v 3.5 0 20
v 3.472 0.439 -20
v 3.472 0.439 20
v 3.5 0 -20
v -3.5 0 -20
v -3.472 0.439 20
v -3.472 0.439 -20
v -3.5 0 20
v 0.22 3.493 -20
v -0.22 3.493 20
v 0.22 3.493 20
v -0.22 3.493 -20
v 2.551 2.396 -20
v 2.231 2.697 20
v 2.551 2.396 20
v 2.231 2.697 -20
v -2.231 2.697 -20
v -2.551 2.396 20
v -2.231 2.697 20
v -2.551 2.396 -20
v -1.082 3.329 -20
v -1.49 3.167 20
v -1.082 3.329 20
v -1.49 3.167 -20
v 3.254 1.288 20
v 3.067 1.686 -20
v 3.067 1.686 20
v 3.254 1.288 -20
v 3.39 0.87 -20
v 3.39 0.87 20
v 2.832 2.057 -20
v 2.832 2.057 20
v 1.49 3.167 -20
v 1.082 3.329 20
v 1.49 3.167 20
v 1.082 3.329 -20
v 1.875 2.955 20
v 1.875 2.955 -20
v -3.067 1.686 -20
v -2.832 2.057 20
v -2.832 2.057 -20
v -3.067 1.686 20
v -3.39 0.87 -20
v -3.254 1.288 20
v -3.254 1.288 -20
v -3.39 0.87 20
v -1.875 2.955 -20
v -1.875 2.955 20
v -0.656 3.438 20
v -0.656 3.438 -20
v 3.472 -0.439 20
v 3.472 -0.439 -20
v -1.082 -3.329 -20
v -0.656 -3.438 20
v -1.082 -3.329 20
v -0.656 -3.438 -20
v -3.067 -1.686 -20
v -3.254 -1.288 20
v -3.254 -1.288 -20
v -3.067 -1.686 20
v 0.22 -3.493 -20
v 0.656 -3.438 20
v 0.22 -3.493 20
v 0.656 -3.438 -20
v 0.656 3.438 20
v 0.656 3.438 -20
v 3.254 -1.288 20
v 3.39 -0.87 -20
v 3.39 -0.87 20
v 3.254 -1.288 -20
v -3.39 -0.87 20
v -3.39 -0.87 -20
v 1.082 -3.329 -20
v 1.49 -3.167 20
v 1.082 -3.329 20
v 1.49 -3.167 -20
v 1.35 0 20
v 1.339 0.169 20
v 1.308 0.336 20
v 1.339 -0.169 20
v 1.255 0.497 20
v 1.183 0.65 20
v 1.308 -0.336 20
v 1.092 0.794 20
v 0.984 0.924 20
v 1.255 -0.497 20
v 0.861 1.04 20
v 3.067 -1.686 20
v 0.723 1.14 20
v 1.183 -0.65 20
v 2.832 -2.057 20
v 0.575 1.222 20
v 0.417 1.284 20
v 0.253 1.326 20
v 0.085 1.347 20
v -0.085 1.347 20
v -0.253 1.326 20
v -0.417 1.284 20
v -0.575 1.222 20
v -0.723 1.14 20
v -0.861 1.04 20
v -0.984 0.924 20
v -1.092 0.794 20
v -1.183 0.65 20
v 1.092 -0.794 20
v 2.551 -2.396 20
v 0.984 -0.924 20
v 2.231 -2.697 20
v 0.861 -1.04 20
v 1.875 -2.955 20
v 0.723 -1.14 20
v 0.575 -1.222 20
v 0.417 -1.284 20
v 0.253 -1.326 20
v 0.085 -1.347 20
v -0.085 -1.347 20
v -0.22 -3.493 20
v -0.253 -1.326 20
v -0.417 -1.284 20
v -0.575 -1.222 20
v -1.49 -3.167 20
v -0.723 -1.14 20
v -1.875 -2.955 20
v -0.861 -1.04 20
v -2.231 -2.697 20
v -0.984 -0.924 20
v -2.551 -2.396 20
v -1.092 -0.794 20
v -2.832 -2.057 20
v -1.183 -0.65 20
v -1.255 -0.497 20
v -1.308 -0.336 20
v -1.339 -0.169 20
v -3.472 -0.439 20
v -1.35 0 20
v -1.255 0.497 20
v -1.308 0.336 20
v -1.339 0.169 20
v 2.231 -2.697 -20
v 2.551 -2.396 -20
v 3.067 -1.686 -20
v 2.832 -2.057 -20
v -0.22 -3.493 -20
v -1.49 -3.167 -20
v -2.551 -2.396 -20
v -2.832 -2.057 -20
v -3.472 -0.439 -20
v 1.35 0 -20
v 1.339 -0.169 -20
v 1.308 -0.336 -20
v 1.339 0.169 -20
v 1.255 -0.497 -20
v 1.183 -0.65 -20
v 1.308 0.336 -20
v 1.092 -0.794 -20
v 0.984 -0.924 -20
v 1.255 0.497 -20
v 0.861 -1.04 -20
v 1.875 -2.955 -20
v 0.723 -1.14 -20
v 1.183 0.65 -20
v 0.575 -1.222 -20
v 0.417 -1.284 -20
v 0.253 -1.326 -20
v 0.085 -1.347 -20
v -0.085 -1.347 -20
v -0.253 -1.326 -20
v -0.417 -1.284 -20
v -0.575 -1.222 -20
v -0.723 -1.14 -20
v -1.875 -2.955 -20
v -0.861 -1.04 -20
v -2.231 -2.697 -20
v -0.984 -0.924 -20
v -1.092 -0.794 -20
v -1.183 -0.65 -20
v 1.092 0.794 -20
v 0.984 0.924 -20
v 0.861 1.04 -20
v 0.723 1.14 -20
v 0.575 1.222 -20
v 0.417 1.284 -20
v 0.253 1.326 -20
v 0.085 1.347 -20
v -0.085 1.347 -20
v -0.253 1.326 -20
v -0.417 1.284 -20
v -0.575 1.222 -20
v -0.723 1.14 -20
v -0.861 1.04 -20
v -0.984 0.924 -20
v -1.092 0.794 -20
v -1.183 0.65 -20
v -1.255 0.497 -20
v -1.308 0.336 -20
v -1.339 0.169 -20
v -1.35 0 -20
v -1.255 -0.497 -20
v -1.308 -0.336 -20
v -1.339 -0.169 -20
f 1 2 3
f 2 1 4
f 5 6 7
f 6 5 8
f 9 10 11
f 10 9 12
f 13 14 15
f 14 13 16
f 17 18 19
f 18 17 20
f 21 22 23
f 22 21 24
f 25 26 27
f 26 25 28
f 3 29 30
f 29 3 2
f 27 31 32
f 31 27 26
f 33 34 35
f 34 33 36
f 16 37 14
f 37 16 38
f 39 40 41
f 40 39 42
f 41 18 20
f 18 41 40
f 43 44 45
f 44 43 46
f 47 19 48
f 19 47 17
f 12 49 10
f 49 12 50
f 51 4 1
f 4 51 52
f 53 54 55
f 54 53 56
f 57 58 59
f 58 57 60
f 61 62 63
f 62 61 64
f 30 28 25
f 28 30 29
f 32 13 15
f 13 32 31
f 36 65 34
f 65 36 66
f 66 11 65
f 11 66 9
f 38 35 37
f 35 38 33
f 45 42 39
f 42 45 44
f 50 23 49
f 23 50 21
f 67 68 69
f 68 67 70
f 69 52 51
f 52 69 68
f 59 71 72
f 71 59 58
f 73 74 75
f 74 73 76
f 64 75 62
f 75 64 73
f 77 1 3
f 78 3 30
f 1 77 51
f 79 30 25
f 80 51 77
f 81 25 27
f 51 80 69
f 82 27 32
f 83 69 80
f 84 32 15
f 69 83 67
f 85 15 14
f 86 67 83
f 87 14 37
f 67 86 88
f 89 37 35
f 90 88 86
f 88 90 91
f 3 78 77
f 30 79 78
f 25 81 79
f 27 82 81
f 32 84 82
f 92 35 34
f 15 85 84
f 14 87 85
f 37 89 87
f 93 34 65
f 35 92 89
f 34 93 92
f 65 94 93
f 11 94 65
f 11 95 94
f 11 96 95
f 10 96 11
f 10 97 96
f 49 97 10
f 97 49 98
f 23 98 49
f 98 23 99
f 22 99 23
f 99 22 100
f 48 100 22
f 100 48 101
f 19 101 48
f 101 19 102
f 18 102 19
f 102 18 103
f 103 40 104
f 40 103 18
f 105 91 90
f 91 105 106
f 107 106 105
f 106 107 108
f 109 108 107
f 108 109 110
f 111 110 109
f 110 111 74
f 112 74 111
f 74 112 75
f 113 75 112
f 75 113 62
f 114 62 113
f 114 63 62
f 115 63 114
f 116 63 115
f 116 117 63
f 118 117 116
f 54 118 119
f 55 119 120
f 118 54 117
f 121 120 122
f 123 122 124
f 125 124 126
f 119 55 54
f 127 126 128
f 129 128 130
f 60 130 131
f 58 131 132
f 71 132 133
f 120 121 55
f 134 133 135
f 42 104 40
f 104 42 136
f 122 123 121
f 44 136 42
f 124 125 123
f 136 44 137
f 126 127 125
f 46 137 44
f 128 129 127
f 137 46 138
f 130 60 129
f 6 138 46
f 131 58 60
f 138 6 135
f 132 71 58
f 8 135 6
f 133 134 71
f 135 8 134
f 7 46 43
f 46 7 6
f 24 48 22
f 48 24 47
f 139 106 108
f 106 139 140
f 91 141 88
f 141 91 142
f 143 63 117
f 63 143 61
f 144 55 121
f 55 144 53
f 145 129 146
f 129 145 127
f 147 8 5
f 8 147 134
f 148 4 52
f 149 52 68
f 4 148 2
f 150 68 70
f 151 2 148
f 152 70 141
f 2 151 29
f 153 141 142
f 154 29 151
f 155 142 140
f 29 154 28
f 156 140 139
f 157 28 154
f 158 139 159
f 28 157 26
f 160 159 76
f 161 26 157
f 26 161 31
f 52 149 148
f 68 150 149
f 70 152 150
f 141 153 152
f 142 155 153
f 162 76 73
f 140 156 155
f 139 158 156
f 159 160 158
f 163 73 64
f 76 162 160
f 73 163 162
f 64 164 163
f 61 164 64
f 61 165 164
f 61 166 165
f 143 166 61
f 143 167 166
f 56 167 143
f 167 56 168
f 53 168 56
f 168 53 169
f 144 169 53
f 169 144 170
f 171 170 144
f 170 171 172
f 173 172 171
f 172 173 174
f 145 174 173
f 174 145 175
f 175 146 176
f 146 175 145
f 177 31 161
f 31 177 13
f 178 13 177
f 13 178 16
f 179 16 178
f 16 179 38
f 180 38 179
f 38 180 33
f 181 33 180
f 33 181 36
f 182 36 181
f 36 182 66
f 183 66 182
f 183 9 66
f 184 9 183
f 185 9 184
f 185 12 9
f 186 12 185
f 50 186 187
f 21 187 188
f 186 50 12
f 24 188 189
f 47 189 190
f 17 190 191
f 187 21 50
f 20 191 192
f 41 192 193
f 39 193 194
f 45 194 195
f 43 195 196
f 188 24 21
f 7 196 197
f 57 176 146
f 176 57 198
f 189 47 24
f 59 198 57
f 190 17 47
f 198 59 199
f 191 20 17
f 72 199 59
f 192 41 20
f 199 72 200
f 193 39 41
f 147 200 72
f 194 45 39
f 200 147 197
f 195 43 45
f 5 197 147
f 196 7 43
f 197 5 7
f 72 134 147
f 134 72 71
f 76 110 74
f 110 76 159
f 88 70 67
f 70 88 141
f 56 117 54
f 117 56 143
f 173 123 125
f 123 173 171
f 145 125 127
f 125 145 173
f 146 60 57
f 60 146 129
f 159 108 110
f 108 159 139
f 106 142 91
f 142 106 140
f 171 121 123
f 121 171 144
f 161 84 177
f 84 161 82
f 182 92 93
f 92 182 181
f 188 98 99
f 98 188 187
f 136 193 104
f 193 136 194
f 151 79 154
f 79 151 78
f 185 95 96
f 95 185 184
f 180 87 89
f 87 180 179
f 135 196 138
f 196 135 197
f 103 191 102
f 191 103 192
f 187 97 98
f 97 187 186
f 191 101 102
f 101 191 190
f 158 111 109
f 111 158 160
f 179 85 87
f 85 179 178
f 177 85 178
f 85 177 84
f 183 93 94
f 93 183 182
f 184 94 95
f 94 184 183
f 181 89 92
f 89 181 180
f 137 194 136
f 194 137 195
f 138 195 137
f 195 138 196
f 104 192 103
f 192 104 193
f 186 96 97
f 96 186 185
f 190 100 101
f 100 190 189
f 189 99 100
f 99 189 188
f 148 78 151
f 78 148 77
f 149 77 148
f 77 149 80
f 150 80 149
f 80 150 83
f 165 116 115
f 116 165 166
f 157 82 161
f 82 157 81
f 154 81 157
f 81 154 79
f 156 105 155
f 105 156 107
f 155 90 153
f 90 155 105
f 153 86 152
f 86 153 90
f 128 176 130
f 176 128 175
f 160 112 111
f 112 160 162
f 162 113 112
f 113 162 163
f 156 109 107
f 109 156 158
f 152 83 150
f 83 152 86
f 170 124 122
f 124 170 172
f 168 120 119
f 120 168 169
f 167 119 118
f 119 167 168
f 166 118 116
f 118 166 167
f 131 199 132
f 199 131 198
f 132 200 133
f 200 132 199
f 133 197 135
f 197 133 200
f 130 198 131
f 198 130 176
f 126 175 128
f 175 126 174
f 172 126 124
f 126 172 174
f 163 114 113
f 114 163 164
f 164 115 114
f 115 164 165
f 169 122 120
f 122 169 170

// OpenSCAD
$fn = 50;


difference() {
	union() {
		translate(v = [0, 0, -20.0000000000]) {
			cylinder(h = 40, r = 3.5000000000);
		}
	}
	union() {
		translate(v = [0, 0, -100.0000000000]) {
			cylinder(h = 200, r = 1.3500000000);
		}
	}
}
